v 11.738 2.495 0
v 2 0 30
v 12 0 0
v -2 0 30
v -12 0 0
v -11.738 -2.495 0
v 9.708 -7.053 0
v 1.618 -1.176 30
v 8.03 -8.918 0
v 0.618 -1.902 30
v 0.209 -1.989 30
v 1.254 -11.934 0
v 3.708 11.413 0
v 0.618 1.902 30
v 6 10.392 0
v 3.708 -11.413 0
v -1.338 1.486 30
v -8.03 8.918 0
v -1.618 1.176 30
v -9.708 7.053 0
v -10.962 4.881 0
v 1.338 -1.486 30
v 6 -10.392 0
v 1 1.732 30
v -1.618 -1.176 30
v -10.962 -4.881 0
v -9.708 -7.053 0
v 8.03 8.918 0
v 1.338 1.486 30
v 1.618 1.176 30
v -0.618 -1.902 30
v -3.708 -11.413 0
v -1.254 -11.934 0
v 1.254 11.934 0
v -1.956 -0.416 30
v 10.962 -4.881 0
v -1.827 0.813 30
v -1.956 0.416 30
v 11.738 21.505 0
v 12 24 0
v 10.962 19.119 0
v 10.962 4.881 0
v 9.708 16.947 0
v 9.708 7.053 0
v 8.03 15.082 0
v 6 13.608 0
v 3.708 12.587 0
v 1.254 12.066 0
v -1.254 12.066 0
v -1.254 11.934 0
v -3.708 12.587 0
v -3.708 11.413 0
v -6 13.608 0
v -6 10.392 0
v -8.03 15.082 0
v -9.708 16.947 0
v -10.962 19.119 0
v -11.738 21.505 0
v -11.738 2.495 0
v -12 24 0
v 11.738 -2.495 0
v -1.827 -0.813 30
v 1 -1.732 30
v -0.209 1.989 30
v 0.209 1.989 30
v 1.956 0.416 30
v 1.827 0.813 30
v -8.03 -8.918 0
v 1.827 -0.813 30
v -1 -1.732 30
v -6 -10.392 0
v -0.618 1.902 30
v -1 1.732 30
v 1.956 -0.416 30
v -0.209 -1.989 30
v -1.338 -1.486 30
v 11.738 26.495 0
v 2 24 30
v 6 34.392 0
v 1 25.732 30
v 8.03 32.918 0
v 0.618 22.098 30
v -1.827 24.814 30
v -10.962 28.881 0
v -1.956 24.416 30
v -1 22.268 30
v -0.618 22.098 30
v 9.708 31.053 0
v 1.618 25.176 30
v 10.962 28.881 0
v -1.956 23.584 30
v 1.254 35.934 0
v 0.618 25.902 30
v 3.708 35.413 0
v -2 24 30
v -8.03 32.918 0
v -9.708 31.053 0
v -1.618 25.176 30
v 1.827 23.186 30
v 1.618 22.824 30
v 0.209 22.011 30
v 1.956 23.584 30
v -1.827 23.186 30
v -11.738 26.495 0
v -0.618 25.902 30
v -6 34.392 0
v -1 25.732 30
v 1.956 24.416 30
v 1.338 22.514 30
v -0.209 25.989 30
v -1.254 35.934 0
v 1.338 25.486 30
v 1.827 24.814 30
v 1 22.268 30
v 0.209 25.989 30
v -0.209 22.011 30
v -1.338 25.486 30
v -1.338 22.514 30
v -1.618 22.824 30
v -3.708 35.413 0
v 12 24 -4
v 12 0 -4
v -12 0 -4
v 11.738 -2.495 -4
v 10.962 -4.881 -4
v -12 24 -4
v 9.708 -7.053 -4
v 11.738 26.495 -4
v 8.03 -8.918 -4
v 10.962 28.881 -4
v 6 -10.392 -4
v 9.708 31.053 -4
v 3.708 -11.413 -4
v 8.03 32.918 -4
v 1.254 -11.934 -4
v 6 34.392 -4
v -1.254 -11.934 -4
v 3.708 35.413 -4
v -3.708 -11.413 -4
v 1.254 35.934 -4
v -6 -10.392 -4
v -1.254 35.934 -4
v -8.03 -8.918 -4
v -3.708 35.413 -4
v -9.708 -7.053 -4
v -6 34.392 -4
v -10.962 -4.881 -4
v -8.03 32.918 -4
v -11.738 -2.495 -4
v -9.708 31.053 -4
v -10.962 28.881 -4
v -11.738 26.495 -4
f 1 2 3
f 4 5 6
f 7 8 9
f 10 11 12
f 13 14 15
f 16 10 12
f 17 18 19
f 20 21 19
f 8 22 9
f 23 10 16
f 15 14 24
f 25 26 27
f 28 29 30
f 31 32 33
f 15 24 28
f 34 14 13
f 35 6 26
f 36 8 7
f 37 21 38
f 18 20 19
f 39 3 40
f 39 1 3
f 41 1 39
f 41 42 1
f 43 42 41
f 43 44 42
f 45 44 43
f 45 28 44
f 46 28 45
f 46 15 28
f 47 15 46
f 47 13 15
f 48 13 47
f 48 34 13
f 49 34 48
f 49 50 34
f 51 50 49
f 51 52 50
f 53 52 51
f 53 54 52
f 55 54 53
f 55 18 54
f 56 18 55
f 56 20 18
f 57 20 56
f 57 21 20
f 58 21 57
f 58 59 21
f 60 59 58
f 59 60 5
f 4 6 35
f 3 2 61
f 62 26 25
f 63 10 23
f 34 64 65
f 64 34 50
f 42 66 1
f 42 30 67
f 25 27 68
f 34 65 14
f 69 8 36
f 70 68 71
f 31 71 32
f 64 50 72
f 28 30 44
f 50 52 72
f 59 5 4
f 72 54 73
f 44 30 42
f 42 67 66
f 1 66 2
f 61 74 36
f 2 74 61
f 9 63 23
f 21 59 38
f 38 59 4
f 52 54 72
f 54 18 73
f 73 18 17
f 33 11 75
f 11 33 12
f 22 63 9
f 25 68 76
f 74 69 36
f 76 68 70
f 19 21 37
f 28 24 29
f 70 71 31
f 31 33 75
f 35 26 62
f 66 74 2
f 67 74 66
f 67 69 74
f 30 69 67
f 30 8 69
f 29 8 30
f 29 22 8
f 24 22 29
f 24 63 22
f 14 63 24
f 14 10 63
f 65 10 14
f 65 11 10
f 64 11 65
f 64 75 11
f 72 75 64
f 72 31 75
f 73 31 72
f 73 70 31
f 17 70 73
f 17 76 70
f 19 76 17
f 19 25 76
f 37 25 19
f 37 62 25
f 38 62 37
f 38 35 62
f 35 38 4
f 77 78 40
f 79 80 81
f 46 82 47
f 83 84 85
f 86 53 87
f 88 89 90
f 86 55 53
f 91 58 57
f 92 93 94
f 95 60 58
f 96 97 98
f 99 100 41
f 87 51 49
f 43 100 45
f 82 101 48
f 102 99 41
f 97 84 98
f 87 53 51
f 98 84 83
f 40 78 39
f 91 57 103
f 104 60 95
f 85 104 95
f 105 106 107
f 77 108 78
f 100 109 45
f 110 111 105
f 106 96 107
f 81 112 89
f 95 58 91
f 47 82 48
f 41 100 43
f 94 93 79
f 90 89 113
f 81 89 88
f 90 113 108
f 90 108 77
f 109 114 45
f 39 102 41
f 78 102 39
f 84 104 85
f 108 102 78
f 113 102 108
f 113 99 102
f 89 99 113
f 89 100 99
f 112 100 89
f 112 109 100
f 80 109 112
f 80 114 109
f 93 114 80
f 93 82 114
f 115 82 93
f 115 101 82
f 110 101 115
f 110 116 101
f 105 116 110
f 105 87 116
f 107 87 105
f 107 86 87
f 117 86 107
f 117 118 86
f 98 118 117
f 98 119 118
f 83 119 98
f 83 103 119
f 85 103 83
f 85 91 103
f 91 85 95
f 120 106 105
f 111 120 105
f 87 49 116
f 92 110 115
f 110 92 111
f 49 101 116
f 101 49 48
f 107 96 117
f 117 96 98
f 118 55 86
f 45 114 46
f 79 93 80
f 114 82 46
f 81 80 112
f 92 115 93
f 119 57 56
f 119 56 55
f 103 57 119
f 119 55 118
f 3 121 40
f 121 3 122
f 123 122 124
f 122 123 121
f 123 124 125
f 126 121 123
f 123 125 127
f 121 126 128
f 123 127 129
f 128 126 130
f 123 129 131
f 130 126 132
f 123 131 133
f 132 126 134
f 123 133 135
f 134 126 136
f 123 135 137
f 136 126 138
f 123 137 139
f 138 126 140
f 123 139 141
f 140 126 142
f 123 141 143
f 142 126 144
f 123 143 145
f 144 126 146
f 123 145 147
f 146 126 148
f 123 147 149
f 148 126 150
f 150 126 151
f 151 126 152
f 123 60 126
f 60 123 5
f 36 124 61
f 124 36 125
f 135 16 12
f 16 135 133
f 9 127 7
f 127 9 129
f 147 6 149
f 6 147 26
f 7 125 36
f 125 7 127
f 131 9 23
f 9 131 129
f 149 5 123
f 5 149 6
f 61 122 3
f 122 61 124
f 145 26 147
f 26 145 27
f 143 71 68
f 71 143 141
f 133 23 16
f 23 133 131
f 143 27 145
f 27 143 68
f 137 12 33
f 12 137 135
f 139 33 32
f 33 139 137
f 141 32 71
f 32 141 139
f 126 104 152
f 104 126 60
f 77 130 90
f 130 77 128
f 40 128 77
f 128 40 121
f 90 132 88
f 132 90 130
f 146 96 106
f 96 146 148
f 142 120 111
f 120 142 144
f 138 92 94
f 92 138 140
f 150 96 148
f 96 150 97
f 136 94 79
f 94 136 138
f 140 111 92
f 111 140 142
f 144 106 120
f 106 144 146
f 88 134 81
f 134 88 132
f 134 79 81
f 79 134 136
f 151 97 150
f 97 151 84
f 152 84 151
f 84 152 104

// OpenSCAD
// bottom radius [mm]
r1 = 12; // [10:0.1:180]
// top radius [mm]
r2 = 2; // [0:0.1:2]
// cylinder height [mm]
height = 30; // [10:0.1:180]

// base height [mm]
stand_height = 4; // [0.5:0.1:5]

module model()
{
    cylinder(h = height, r1 = r1, r2 = r2, center = false);
    translate([0, r1*2, 0])
        cylinder(h = height, r1 = r1, r2 = r2, center = false);

    translate([-r1, 0, -stand_height])
        cube([r1*2, r1*2, stand_height]);

    translate([0, 0, -stand_height])
        cylinder(h = stand_height, r = r1, center = false);
    translate([0, r1*2, -stand_height])
        cylinder(h = stand_height, r = r1, center = false);
}

model();
